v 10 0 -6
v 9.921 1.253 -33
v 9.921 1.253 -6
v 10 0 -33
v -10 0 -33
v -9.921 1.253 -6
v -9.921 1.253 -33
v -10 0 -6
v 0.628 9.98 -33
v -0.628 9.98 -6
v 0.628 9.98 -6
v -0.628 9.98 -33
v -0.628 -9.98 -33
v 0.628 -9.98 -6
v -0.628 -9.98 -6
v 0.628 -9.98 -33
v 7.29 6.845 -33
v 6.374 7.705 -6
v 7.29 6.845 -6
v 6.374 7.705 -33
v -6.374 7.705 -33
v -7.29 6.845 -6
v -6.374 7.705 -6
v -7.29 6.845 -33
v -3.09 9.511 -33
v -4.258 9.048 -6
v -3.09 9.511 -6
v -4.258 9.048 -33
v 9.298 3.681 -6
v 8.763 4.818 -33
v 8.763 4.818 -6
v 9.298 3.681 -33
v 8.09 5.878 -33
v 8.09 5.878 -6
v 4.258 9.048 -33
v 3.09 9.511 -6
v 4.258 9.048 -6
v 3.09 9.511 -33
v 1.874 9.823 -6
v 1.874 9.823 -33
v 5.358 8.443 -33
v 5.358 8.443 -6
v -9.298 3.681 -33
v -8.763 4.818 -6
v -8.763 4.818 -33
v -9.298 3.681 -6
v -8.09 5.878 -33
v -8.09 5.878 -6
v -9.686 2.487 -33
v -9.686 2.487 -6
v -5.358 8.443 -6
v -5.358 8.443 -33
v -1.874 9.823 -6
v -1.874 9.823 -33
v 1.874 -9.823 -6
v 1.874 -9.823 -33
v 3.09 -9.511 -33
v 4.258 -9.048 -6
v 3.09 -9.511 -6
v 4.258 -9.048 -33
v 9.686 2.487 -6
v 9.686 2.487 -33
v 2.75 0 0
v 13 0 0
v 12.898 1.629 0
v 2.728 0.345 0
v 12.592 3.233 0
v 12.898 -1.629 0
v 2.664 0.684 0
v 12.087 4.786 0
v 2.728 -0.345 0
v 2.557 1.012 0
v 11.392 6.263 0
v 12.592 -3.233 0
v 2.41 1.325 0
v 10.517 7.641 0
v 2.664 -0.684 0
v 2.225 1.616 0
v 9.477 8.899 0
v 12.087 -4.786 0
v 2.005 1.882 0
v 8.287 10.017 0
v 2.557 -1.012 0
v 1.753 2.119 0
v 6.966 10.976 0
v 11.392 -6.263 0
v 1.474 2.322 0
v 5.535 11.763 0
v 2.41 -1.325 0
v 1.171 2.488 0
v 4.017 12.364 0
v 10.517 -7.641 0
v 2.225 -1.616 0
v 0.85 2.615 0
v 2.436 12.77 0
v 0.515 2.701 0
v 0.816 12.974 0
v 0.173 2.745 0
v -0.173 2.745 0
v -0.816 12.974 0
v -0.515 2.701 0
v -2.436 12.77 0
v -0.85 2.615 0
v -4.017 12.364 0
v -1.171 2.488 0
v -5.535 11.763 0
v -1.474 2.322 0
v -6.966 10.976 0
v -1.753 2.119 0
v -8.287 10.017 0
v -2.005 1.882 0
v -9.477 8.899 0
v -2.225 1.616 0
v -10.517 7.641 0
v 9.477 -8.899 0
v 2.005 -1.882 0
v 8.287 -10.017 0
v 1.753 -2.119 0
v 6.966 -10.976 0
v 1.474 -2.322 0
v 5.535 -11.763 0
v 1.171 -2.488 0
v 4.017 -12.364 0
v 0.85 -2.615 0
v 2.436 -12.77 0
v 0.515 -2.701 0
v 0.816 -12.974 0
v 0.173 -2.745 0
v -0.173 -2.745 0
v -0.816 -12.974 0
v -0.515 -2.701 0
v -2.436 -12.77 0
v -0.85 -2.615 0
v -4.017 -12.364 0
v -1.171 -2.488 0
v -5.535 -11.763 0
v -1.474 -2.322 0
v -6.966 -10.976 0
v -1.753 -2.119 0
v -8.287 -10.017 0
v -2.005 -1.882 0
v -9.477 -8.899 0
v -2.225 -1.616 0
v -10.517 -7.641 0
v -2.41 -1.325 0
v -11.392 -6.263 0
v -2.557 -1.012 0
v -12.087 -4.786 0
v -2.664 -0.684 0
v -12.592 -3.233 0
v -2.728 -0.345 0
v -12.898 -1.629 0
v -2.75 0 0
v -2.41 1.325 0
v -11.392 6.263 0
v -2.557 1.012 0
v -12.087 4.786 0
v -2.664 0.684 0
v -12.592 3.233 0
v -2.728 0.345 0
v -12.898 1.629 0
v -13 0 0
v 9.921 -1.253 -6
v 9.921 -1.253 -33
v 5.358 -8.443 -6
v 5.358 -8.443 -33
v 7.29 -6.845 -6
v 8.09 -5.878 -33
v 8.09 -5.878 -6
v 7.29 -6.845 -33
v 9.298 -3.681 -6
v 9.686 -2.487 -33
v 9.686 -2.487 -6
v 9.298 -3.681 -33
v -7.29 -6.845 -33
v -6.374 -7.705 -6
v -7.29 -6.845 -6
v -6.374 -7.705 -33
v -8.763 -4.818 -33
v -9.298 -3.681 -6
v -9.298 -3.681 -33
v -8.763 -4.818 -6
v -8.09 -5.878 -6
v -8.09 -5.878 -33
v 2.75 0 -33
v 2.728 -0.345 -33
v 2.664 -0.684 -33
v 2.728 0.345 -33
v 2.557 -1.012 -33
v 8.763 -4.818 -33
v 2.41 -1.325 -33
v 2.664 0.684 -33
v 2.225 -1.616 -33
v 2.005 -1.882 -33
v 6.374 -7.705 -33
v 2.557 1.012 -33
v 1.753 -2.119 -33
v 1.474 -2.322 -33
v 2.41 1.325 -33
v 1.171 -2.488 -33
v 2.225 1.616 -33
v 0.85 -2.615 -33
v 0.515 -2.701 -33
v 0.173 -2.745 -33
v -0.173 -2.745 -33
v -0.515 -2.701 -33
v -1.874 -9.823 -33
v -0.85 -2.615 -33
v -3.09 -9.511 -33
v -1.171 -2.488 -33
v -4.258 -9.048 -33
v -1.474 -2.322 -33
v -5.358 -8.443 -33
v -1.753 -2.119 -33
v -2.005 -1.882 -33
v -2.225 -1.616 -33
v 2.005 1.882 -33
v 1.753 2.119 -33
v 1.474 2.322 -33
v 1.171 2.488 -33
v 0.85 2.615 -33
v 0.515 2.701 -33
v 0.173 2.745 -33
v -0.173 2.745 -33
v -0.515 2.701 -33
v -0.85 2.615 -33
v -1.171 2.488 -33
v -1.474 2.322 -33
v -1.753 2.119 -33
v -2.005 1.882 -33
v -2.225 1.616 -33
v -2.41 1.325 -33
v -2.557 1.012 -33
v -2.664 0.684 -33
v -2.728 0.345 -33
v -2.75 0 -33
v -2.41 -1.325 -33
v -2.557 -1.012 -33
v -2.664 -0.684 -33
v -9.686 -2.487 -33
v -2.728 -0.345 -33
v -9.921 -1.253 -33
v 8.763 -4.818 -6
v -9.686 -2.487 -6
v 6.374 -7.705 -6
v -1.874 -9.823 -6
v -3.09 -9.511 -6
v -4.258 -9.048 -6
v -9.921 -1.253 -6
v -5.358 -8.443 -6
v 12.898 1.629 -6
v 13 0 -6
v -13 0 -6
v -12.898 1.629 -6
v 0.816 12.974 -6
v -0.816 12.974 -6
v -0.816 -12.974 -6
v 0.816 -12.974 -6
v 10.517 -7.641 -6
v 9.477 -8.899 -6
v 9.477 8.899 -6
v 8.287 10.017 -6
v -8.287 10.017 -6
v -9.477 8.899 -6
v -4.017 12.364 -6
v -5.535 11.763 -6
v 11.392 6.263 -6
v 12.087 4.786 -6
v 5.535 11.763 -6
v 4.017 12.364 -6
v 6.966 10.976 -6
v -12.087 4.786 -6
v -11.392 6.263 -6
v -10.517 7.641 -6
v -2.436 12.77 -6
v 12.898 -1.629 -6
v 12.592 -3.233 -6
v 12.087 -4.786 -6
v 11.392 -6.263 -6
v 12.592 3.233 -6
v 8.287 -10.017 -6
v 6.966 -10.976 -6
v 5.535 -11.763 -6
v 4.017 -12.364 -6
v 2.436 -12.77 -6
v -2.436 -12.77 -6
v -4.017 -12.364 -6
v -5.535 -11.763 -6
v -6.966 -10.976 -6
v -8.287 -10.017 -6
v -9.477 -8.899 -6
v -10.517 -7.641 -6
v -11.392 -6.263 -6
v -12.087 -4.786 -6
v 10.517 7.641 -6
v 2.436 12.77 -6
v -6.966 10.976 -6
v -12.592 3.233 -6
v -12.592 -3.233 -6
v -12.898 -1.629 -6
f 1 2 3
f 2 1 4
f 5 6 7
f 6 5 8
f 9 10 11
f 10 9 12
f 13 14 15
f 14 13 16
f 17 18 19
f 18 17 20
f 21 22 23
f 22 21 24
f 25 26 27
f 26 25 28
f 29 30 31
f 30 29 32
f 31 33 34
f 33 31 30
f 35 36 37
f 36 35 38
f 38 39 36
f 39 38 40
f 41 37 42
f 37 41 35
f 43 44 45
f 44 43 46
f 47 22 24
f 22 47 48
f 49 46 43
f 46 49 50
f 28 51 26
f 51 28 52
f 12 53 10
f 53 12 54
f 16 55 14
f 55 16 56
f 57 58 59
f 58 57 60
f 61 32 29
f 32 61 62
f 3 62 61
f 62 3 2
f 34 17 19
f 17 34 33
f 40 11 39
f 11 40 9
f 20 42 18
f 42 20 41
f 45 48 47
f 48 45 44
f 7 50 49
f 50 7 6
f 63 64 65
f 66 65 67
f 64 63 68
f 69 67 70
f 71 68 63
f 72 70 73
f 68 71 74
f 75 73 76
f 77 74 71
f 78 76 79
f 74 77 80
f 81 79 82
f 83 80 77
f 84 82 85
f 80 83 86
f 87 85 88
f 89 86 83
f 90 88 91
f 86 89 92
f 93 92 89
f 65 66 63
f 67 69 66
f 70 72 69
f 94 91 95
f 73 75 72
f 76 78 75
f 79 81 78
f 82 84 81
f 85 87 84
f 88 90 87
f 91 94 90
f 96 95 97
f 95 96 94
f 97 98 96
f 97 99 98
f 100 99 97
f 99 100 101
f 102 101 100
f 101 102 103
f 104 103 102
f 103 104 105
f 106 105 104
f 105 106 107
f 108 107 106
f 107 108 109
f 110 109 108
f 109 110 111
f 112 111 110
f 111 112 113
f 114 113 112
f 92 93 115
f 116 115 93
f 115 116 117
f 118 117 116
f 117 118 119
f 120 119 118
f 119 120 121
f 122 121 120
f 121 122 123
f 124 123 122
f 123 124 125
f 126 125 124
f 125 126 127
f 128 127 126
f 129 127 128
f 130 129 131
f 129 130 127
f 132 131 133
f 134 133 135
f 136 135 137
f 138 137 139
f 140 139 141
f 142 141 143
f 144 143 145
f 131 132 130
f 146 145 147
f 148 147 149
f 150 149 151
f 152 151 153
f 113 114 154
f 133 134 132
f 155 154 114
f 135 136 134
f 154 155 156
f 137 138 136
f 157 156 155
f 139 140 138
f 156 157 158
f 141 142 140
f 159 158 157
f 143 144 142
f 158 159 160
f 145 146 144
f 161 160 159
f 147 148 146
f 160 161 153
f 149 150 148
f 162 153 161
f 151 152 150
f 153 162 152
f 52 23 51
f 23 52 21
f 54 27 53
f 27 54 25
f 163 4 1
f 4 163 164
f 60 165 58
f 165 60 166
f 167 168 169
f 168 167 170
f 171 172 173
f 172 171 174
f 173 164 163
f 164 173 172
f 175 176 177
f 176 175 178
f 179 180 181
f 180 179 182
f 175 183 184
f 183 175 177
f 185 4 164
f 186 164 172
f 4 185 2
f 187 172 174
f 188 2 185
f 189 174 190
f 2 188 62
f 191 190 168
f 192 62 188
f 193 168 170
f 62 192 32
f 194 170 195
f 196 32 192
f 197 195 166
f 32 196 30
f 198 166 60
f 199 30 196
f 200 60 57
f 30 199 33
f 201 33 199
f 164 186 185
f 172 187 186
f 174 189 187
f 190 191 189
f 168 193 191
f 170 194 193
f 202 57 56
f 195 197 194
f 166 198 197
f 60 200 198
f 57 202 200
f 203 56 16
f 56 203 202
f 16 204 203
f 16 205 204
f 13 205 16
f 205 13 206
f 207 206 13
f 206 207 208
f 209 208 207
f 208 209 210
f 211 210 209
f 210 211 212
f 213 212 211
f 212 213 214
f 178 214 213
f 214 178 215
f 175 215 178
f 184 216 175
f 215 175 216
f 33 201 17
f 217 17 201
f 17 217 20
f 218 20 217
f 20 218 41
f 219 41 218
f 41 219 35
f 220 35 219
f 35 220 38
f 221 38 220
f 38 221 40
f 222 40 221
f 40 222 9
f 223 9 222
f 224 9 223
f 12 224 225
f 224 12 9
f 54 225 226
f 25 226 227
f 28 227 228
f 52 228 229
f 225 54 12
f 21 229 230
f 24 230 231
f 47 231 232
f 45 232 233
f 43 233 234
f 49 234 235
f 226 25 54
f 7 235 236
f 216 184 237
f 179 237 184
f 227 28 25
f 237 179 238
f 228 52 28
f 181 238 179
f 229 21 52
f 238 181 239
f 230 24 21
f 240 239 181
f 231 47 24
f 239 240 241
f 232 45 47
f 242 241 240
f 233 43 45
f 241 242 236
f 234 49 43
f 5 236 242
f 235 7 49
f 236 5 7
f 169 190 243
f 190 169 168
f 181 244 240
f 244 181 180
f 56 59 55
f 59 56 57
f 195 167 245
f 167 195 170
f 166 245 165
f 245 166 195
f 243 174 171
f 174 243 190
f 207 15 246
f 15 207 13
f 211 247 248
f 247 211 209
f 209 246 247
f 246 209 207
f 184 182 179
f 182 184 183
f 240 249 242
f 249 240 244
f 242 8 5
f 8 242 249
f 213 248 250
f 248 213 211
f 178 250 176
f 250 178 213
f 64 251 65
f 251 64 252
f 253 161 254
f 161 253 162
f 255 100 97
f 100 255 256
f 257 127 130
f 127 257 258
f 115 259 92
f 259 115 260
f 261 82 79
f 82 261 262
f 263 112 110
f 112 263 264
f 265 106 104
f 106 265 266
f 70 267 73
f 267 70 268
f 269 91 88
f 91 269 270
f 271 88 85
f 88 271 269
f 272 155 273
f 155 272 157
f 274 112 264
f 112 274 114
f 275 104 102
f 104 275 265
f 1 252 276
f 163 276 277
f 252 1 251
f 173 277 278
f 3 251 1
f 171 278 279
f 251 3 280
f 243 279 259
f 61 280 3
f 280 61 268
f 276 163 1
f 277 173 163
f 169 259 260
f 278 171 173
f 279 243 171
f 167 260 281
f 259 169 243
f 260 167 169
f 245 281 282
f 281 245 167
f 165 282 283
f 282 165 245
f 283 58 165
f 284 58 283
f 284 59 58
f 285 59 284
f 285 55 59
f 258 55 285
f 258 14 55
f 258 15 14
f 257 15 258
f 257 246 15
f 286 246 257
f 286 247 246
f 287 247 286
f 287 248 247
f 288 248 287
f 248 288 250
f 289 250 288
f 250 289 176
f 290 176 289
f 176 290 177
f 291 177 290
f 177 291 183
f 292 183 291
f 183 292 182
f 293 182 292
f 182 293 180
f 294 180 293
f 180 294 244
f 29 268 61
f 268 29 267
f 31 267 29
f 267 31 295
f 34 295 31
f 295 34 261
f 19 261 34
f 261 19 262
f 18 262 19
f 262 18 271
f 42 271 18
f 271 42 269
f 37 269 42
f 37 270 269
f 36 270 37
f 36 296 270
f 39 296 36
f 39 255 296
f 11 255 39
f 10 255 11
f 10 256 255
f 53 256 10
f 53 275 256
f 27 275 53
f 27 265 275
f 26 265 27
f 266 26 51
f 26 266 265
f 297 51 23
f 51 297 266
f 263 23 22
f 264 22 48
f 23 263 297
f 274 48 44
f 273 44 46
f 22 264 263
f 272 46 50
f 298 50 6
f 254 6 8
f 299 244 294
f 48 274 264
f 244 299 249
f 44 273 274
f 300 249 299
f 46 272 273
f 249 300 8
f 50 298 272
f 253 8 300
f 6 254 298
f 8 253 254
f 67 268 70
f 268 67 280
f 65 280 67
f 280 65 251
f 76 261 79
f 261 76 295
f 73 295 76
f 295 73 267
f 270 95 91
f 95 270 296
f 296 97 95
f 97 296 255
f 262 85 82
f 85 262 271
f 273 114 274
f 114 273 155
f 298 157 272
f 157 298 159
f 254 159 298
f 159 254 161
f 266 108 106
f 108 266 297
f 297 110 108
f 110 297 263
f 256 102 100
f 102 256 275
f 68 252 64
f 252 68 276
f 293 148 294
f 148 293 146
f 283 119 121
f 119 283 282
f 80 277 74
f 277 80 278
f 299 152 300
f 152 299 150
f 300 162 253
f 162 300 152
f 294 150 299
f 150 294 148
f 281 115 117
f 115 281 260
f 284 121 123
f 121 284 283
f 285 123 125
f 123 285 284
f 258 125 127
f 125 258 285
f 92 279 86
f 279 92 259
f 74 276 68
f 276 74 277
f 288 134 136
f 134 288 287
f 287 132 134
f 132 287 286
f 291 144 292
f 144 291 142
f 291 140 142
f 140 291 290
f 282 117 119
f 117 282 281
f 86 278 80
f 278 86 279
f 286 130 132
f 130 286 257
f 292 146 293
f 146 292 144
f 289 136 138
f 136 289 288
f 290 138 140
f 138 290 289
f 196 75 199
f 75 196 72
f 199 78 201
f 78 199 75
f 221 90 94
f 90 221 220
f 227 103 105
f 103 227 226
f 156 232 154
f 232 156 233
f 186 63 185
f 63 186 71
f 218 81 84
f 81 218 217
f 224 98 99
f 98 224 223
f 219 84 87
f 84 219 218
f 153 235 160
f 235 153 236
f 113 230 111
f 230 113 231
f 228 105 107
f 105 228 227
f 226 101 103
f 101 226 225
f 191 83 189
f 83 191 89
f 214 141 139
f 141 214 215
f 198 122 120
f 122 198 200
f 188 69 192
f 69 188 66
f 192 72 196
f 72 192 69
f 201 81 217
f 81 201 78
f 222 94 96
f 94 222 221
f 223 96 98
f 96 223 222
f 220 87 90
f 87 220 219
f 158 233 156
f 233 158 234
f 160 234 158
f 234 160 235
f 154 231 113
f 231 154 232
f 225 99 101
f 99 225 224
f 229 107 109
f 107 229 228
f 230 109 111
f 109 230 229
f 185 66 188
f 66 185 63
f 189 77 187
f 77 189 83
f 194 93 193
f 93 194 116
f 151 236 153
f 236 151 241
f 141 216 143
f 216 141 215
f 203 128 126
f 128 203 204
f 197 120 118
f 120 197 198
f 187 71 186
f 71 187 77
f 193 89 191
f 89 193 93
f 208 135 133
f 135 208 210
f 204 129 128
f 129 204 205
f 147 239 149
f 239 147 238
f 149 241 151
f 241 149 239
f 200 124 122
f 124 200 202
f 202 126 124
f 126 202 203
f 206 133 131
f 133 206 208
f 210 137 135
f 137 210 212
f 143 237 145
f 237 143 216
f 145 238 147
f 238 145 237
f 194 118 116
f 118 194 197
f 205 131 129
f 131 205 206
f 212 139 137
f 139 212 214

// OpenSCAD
$fn = 50;


difference() {
	union() {
		translate(v = [0, 0, -33.0000000000]) {
			cylinder(h = 33, r = 10.0000000000);
		}
		translate(v = [0, 0, -6.0000000000]) {
			cylinder(h = 6, r = 13.0000000000);
		}
	}
	union() {
		#translate(v = [0, 0, -33]) {
			cylinder(h = 33, r = 2.7500000000);
		}
	}
}
